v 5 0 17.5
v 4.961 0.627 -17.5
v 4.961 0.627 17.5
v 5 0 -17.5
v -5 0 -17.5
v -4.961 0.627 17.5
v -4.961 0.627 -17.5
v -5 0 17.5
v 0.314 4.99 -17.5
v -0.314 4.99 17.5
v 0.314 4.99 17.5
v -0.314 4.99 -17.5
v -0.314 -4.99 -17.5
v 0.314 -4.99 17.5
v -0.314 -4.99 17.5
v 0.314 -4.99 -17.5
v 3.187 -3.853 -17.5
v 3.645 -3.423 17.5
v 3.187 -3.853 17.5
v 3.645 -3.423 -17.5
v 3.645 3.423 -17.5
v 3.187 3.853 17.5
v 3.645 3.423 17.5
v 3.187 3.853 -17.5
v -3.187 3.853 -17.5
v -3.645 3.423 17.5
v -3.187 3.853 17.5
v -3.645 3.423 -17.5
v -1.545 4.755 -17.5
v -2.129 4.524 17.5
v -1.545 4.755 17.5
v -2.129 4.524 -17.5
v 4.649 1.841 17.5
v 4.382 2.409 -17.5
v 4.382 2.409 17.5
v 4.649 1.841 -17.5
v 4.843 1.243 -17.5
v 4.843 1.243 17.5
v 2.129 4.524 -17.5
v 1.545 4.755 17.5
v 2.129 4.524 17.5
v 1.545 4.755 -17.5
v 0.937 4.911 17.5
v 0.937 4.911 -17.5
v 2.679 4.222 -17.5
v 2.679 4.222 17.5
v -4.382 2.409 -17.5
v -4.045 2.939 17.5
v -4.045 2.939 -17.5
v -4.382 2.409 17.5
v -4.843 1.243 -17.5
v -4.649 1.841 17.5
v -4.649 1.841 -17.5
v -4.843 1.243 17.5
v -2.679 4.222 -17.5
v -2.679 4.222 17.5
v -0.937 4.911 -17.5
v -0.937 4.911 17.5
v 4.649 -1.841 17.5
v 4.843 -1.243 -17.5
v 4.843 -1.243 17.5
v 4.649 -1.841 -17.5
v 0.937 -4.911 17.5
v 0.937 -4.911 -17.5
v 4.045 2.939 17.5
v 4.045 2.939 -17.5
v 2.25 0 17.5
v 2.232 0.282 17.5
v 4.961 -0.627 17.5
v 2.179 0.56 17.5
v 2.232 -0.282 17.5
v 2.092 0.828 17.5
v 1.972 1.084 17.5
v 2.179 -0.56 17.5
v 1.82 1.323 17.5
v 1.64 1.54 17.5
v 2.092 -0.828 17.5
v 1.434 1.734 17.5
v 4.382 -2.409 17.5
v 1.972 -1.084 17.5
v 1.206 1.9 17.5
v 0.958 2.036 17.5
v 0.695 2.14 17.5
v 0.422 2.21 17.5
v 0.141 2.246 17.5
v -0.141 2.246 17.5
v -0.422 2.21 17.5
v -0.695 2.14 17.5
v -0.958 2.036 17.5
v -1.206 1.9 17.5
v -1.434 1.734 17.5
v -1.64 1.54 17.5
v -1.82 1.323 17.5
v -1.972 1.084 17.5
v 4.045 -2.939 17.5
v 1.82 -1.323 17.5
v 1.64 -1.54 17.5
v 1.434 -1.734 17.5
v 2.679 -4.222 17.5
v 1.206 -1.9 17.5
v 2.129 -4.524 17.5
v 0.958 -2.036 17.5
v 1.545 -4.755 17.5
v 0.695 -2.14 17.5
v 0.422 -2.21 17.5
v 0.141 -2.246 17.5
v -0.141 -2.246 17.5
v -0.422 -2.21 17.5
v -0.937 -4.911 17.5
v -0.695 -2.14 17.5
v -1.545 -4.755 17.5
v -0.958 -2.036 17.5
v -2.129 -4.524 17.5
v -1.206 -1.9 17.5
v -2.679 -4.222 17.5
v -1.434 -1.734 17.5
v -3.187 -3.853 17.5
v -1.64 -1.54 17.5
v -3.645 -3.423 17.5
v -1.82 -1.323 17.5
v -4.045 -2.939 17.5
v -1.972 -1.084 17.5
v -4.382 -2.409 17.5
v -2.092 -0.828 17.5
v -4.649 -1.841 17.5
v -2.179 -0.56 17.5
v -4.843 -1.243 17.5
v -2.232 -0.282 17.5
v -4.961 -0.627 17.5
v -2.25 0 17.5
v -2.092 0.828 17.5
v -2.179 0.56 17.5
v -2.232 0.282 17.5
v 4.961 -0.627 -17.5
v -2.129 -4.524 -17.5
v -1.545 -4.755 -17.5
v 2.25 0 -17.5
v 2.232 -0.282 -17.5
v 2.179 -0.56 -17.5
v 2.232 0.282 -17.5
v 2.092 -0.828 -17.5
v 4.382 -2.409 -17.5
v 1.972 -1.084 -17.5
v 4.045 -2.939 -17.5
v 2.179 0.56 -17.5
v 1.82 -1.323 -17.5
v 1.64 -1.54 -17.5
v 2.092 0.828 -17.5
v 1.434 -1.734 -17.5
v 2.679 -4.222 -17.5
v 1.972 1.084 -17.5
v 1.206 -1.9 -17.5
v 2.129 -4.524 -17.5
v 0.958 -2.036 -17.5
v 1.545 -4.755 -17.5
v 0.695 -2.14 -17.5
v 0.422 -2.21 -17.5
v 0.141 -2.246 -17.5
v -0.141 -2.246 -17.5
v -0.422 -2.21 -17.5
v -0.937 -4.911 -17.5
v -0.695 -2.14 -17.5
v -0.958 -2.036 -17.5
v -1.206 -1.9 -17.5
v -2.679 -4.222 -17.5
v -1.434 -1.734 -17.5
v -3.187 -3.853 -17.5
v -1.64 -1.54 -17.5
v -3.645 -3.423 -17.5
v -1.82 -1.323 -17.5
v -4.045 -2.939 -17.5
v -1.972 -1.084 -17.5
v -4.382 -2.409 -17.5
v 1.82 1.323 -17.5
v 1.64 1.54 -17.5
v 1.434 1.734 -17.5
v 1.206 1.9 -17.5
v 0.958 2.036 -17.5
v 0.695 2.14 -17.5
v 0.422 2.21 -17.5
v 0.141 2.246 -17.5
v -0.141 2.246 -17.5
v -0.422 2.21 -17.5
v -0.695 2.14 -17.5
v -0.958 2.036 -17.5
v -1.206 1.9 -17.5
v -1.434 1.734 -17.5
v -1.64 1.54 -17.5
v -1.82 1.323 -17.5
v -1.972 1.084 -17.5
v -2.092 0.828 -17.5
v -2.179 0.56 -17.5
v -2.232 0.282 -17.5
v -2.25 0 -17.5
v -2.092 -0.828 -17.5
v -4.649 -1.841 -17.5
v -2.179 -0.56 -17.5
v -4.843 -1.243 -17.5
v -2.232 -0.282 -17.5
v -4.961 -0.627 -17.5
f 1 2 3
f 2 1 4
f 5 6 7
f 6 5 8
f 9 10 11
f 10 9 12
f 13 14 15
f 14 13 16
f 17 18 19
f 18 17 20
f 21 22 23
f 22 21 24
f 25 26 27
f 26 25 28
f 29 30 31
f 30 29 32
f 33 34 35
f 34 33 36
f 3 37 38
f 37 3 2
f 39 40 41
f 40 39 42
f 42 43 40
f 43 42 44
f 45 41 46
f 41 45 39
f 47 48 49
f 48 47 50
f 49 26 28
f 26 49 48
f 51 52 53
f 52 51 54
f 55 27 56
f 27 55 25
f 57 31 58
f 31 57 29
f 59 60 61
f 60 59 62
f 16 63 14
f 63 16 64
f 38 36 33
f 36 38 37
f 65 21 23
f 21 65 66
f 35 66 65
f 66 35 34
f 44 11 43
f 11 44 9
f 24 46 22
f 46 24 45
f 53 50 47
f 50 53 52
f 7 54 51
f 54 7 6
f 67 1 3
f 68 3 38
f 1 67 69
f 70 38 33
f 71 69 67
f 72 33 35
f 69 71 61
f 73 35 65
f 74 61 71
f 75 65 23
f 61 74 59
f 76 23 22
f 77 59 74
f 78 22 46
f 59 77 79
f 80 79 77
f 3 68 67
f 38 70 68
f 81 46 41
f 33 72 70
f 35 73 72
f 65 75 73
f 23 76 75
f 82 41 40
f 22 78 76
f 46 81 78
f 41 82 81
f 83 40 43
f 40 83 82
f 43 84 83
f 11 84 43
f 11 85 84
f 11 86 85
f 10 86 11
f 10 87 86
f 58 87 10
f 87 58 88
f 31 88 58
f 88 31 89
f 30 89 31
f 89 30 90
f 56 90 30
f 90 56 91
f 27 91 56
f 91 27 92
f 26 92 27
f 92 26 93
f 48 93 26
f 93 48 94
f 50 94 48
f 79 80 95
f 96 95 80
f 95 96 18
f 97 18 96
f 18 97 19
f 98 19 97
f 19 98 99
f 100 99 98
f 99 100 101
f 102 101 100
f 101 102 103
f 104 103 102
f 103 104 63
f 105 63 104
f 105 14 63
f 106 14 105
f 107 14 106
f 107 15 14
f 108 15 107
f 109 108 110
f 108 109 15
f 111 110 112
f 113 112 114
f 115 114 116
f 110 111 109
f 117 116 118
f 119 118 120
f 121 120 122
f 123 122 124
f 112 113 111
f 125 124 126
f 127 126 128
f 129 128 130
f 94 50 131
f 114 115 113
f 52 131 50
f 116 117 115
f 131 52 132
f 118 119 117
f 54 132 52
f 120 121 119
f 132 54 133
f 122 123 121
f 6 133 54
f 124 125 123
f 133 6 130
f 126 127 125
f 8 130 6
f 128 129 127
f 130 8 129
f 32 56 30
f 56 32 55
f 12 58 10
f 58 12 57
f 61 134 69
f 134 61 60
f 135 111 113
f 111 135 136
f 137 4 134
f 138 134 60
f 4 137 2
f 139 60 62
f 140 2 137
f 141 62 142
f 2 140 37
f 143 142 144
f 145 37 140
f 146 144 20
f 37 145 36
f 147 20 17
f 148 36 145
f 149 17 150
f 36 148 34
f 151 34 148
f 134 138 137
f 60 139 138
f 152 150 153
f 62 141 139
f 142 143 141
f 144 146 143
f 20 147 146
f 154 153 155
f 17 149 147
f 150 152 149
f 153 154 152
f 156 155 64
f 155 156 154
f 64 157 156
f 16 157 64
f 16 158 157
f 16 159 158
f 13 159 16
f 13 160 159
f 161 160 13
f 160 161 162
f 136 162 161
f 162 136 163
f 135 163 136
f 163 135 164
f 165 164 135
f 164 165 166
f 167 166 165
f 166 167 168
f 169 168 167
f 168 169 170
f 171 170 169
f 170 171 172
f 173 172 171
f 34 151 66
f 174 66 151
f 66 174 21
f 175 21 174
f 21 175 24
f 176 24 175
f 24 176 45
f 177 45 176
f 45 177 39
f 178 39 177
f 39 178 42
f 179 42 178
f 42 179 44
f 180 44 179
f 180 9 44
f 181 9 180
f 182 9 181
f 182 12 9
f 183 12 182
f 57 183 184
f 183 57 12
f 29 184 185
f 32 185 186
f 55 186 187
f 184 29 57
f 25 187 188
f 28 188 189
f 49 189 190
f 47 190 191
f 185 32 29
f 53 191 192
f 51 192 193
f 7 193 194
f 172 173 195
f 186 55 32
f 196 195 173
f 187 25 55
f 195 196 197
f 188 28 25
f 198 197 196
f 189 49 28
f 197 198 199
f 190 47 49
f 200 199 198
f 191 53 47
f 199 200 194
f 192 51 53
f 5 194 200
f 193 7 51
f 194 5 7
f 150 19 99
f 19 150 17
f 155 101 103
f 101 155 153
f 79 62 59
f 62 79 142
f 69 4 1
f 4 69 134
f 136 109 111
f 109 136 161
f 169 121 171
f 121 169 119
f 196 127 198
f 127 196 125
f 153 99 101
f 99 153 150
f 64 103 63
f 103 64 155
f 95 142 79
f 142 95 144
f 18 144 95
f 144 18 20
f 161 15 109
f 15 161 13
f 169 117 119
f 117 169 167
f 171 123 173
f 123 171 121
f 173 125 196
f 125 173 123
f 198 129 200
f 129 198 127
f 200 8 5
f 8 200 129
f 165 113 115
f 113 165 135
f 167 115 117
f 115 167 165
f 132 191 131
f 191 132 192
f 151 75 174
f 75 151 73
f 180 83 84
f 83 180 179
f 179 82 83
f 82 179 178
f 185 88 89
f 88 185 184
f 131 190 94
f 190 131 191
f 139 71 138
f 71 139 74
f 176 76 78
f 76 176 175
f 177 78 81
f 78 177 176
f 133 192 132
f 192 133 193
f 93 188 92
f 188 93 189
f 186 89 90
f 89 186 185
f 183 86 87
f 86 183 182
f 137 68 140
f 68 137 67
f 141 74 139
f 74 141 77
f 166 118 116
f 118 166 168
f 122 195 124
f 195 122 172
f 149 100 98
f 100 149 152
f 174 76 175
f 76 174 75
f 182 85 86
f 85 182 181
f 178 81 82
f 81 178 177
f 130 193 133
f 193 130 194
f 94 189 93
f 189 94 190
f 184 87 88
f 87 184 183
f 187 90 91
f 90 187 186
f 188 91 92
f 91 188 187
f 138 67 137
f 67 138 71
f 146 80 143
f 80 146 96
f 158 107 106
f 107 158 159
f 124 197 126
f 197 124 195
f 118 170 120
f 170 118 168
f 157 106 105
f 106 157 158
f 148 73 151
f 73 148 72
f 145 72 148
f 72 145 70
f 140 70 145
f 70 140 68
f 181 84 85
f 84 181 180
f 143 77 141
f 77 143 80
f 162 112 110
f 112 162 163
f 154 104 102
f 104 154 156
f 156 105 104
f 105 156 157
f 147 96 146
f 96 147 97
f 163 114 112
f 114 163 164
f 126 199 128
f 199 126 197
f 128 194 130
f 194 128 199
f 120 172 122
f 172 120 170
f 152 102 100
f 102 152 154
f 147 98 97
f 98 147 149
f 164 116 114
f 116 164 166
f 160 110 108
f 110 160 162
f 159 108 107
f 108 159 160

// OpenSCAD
$fn = 50;


difference() {
	union() {
		translate(v = [0, 0, -17.5000000000]) {
			cylinder(h = 35, r = 5.0000000000);
		}
	}
	union() {
		translate(v = [0, 0, -100.0000000000]) {
			cylinder(h = 200, r = 2.2500000000);
		}
	}
}
